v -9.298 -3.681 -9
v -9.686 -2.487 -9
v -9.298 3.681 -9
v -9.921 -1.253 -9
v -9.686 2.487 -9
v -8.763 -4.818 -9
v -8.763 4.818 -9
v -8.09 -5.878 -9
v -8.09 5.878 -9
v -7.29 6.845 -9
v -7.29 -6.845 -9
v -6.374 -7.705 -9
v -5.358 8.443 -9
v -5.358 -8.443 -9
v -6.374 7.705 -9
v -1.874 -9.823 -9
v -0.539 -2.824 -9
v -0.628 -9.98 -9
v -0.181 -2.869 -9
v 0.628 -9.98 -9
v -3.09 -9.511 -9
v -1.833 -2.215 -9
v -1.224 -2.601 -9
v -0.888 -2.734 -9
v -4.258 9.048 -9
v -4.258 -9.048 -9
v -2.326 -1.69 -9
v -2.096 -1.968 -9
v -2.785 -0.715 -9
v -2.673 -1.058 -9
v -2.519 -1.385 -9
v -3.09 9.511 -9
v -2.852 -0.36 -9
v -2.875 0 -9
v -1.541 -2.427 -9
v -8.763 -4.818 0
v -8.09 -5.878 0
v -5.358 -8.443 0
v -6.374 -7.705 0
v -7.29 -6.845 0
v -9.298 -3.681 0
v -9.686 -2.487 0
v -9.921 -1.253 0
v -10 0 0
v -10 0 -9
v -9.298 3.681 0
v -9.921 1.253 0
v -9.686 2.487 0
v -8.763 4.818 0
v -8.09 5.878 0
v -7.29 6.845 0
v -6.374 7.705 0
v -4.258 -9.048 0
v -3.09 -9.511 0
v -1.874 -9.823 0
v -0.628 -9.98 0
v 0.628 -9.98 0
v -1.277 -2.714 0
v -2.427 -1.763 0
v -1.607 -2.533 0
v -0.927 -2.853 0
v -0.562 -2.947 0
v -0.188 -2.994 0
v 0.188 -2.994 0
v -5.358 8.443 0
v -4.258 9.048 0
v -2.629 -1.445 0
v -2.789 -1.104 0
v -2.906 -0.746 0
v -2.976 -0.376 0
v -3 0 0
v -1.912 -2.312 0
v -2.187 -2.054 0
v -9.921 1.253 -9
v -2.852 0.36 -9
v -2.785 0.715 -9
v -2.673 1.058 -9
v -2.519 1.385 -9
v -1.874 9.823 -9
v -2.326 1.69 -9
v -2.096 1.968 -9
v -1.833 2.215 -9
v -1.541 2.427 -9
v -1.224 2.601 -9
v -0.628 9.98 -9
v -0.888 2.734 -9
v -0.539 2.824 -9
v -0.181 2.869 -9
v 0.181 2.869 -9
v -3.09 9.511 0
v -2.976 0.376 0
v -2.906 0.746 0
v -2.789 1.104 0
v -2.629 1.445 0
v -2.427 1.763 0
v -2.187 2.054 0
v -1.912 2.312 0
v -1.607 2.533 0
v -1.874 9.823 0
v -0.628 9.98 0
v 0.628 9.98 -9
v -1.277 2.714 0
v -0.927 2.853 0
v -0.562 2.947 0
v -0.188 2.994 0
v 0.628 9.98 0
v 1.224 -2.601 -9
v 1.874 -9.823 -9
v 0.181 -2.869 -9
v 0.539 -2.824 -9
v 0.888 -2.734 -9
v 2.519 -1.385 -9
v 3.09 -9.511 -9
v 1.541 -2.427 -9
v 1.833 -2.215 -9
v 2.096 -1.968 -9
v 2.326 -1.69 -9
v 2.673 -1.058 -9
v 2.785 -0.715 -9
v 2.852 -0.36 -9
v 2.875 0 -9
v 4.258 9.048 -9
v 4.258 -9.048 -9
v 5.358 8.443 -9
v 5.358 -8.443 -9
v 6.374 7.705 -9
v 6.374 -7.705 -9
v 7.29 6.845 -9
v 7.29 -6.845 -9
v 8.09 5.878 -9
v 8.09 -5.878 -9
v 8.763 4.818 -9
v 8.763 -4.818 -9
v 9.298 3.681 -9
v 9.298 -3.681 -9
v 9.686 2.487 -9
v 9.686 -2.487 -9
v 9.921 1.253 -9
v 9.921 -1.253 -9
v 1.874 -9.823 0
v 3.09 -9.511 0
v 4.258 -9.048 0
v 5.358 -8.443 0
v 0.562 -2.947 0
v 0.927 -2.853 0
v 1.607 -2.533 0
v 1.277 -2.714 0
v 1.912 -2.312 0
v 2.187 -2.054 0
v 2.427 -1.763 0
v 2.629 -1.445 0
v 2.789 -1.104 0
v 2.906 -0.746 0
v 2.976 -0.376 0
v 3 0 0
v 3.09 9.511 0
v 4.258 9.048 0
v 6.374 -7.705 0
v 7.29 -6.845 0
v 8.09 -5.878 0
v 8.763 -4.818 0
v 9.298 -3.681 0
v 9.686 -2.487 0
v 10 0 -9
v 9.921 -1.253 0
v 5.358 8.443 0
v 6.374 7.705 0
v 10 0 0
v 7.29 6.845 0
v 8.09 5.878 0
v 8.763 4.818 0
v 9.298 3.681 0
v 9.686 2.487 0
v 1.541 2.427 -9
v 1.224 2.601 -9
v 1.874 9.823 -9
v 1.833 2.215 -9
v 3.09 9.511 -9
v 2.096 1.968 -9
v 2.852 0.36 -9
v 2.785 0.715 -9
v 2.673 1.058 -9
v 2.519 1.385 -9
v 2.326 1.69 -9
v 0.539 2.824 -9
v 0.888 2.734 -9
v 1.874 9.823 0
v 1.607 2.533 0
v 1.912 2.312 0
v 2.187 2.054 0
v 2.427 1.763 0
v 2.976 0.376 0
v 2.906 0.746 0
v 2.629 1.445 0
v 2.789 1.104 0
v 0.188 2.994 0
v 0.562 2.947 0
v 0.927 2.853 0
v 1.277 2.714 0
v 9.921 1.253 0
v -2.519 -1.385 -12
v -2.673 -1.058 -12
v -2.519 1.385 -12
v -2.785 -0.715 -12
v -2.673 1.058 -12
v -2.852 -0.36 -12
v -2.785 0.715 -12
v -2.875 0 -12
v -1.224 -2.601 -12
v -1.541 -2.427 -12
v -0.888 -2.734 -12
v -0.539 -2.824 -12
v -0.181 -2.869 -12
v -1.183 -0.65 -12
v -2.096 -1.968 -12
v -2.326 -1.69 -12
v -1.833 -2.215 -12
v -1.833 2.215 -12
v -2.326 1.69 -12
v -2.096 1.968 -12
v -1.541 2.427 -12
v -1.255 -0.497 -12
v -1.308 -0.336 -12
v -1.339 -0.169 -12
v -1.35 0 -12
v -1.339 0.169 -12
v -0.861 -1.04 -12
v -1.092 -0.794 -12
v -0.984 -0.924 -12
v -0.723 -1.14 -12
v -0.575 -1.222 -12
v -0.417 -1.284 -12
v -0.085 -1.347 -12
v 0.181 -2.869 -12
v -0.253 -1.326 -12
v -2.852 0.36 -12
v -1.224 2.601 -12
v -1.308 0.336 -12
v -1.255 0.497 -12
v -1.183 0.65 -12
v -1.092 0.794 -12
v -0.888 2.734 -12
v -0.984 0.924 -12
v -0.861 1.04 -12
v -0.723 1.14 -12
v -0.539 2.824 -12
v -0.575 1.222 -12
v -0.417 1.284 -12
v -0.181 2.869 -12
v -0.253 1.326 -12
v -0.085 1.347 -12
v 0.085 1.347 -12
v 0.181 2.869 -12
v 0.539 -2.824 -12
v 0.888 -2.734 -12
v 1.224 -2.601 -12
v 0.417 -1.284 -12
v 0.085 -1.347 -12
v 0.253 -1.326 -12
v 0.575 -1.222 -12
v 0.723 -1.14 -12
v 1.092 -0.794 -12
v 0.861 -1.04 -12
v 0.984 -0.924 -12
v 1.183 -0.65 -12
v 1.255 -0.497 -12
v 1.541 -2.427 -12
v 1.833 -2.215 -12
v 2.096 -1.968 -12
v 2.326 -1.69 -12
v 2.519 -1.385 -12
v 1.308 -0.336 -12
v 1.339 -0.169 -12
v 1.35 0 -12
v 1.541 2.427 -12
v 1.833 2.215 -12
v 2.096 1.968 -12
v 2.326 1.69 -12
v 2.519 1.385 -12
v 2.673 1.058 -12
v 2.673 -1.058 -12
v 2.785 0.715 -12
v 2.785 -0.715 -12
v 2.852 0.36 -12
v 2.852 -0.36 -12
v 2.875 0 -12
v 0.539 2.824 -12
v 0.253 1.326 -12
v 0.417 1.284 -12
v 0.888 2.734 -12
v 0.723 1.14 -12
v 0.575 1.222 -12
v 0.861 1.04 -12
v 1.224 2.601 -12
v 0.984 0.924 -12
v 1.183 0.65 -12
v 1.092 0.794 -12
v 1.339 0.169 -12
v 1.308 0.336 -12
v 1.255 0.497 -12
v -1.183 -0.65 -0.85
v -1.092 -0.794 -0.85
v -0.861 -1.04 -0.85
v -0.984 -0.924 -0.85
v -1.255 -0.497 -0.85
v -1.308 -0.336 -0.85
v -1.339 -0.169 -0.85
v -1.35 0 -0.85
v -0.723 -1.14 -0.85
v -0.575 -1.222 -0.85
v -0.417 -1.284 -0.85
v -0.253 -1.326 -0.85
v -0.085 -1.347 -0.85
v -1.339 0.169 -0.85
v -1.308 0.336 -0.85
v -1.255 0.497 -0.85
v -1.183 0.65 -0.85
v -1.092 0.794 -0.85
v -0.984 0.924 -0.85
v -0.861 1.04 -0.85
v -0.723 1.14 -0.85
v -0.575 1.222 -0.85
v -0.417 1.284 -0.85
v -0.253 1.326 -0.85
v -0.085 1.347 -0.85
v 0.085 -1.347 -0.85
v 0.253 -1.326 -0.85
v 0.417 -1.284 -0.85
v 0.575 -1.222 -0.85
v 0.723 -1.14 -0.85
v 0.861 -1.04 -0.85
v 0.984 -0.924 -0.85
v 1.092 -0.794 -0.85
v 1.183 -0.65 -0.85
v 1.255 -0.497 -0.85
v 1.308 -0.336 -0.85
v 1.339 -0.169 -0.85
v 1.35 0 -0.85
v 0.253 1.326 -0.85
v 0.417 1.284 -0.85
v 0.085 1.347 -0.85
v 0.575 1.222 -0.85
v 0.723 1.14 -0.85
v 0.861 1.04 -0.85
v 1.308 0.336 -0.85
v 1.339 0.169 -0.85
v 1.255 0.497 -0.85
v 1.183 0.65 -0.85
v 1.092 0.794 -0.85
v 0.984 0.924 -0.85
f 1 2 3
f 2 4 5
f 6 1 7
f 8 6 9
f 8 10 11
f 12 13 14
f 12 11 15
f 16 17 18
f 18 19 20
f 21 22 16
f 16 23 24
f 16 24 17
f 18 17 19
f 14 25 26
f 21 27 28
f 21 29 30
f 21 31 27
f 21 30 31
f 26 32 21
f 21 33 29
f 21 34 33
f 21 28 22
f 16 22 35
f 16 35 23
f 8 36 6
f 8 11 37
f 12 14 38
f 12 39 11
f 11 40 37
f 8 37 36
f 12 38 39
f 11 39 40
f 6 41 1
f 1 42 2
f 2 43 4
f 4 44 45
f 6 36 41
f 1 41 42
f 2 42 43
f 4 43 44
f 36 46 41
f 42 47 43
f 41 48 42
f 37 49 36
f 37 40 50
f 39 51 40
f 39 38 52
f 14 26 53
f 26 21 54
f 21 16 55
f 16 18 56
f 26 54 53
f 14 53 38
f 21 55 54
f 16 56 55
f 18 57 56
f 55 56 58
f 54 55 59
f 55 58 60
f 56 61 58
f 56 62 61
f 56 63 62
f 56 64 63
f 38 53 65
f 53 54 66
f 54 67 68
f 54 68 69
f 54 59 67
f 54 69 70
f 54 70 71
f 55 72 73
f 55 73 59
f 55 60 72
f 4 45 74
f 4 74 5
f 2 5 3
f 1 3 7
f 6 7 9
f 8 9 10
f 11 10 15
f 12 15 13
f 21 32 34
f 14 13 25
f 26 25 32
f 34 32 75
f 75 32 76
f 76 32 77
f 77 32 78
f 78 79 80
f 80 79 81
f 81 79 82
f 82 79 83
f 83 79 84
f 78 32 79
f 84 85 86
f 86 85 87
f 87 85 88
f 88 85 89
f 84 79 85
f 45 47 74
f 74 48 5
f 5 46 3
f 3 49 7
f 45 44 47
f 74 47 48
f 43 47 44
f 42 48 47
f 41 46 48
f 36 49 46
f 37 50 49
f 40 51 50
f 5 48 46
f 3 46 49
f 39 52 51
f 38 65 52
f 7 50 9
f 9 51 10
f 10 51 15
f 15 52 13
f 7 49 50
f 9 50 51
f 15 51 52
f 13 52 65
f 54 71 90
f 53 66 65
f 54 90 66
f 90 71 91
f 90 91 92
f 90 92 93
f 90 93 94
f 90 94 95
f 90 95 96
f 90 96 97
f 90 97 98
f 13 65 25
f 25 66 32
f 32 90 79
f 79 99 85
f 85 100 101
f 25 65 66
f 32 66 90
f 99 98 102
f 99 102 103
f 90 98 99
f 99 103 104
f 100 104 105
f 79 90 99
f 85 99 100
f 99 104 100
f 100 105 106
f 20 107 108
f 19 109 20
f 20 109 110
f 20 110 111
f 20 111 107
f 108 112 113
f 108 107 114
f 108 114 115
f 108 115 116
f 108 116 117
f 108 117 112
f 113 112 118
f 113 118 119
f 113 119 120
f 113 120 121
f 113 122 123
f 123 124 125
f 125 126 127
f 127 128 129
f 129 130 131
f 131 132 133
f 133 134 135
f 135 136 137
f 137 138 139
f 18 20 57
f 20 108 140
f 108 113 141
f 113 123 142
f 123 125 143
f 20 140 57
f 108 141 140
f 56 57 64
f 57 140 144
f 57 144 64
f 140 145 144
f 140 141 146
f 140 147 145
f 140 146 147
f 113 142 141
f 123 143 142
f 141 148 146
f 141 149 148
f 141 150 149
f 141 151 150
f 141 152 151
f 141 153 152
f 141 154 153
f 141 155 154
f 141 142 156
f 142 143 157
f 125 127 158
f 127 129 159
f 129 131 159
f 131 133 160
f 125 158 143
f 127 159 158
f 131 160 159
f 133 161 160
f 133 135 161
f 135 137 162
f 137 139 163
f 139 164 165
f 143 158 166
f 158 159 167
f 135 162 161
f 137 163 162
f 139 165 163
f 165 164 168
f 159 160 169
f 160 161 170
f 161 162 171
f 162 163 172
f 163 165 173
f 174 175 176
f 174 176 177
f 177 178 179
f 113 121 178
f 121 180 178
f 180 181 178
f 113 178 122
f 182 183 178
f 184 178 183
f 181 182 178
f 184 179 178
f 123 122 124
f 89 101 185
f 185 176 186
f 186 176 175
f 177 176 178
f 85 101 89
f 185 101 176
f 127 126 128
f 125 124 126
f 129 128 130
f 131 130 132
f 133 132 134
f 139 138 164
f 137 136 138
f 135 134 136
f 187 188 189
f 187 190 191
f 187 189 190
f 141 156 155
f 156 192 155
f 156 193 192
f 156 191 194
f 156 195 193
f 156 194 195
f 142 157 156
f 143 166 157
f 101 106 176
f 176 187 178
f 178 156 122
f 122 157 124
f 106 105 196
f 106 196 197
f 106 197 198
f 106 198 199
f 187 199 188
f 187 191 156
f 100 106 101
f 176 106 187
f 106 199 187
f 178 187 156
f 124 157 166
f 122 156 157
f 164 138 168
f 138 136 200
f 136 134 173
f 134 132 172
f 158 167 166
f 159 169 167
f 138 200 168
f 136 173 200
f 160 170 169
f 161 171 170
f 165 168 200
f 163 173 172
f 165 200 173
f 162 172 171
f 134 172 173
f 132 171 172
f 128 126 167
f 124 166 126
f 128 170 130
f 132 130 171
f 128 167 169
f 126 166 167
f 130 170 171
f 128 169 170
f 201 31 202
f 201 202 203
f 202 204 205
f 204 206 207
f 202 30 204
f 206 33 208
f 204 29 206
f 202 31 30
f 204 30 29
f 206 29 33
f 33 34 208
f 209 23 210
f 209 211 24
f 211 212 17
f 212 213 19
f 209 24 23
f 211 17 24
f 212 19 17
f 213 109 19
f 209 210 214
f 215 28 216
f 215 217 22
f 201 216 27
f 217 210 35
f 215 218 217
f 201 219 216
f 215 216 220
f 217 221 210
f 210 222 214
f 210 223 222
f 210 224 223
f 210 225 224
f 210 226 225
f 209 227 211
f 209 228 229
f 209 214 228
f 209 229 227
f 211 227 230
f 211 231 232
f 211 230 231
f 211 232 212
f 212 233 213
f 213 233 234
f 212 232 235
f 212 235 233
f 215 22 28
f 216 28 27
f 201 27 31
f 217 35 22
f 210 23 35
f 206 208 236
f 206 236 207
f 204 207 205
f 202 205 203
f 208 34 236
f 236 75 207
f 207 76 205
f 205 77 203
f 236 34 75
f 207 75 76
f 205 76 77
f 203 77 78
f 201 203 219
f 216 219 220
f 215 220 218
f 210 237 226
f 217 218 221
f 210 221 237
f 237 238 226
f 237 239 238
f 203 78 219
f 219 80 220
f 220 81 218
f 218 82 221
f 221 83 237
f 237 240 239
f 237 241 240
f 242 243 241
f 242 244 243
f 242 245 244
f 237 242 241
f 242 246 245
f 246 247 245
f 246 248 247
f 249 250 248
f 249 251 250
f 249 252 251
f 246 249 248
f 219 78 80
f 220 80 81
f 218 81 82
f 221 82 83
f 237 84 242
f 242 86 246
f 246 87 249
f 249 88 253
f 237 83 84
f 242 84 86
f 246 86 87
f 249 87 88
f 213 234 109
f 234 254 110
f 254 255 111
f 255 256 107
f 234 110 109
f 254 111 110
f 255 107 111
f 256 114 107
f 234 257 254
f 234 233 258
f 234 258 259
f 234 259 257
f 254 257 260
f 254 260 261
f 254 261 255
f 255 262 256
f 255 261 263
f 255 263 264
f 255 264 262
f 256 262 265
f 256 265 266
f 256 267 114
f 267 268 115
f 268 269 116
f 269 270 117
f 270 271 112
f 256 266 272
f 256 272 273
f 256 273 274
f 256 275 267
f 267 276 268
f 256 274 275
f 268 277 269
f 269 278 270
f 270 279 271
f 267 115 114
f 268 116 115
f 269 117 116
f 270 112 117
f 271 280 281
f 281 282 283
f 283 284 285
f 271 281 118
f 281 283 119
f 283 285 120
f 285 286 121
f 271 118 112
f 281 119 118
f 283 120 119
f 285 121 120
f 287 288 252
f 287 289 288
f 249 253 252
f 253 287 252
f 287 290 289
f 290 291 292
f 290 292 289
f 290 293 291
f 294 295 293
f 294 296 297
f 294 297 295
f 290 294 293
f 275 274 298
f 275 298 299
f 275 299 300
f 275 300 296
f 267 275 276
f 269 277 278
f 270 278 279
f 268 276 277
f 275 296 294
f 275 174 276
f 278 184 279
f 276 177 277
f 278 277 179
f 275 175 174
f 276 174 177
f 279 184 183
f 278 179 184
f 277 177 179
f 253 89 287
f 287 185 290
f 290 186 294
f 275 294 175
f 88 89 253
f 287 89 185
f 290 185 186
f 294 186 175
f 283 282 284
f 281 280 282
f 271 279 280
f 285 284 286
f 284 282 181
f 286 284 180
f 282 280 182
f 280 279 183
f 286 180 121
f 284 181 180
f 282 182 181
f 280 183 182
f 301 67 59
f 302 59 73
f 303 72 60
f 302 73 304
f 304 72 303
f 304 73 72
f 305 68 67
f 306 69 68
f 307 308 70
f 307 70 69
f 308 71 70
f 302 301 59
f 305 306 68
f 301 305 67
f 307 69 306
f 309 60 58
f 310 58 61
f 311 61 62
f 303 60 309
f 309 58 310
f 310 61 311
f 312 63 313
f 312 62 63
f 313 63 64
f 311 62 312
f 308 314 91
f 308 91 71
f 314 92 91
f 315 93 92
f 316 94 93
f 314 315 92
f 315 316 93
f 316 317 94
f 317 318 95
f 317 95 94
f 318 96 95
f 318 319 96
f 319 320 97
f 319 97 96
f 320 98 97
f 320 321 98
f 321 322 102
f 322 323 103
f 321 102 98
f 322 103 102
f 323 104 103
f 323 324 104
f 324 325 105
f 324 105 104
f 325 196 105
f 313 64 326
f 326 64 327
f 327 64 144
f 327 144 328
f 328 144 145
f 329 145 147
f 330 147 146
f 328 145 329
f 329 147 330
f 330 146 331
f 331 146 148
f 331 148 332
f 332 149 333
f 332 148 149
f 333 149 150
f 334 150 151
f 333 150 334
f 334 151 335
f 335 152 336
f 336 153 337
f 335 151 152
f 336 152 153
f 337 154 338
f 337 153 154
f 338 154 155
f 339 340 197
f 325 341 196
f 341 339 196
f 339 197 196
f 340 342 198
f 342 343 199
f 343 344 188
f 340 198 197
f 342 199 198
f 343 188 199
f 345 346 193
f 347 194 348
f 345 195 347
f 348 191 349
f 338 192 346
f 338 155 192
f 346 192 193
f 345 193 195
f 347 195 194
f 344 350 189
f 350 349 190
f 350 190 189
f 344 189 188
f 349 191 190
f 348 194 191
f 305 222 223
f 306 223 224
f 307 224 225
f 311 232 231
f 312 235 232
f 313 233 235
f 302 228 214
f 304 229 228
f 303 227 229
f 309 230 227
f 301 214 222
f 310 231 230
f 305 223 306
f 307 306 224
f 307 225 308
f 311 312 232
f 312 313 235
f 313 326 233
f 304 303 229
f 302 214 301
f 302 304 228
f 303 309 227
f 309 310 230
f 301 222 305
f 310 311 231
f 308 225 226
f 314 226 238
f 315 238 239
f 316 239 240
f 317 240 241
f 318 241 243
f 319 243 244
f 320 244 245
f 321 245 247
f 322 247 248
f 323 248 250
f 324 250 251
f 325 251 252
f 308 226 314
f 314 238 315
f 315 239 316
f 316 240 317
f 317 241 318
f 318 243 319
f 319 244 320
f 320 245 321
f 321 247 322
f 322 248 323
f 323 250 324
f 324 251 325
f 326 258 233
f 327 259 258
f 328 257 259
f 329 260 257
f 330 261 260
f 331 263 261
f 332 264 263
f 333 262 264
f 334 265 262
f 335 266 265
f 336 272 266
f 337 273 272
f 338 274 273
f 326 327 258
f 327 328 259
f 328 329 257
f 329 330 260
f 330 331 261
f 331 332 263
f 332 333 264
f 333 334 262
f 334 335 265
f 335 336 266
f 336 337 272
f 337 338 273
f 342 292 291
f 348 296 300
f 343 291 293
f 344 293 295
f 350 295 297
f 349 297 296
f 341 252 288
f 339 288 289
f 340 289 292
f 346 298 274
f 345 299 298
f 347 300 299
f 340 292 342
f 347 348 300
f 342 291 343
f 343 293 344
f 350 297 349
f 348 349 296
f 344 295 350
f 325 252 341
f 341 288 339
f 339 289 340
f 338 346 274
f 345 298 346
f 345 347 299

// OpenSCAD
$fn = 50;

difference() {
	union() {
		translate(v = [0, 0, -9.0]) {
			cylinder(h = 9, r = 10.0);
		}
		#translate(v = [0, 0, -12.0]) {
			cylinder(h = 12, r = 2.875);
		}
	}
	union() {
		translate(v = [0, 0, 0]) {
			rotate(a = [0, 0, 0]) {
				difference() {
					union() {
						translate(v = [0, 0, -12.0]) {
							cylinder(h = 12, r = 1.0);
						}
						translate(v = [0, 0, -0.85]) {
							cylinder(h = 0.85, r1 = 1.35, r2 = 3.0);
						}
						translate(v = [0, 0, -12.0]) {
							cylinder(h = 12, r = 1.35);
						}
						translate(v = [0, 0, -12.0]) {
							cylinder(h = 12, r = 1.0);
						}
					}
					union();
				}
			}
		}
	}
}
